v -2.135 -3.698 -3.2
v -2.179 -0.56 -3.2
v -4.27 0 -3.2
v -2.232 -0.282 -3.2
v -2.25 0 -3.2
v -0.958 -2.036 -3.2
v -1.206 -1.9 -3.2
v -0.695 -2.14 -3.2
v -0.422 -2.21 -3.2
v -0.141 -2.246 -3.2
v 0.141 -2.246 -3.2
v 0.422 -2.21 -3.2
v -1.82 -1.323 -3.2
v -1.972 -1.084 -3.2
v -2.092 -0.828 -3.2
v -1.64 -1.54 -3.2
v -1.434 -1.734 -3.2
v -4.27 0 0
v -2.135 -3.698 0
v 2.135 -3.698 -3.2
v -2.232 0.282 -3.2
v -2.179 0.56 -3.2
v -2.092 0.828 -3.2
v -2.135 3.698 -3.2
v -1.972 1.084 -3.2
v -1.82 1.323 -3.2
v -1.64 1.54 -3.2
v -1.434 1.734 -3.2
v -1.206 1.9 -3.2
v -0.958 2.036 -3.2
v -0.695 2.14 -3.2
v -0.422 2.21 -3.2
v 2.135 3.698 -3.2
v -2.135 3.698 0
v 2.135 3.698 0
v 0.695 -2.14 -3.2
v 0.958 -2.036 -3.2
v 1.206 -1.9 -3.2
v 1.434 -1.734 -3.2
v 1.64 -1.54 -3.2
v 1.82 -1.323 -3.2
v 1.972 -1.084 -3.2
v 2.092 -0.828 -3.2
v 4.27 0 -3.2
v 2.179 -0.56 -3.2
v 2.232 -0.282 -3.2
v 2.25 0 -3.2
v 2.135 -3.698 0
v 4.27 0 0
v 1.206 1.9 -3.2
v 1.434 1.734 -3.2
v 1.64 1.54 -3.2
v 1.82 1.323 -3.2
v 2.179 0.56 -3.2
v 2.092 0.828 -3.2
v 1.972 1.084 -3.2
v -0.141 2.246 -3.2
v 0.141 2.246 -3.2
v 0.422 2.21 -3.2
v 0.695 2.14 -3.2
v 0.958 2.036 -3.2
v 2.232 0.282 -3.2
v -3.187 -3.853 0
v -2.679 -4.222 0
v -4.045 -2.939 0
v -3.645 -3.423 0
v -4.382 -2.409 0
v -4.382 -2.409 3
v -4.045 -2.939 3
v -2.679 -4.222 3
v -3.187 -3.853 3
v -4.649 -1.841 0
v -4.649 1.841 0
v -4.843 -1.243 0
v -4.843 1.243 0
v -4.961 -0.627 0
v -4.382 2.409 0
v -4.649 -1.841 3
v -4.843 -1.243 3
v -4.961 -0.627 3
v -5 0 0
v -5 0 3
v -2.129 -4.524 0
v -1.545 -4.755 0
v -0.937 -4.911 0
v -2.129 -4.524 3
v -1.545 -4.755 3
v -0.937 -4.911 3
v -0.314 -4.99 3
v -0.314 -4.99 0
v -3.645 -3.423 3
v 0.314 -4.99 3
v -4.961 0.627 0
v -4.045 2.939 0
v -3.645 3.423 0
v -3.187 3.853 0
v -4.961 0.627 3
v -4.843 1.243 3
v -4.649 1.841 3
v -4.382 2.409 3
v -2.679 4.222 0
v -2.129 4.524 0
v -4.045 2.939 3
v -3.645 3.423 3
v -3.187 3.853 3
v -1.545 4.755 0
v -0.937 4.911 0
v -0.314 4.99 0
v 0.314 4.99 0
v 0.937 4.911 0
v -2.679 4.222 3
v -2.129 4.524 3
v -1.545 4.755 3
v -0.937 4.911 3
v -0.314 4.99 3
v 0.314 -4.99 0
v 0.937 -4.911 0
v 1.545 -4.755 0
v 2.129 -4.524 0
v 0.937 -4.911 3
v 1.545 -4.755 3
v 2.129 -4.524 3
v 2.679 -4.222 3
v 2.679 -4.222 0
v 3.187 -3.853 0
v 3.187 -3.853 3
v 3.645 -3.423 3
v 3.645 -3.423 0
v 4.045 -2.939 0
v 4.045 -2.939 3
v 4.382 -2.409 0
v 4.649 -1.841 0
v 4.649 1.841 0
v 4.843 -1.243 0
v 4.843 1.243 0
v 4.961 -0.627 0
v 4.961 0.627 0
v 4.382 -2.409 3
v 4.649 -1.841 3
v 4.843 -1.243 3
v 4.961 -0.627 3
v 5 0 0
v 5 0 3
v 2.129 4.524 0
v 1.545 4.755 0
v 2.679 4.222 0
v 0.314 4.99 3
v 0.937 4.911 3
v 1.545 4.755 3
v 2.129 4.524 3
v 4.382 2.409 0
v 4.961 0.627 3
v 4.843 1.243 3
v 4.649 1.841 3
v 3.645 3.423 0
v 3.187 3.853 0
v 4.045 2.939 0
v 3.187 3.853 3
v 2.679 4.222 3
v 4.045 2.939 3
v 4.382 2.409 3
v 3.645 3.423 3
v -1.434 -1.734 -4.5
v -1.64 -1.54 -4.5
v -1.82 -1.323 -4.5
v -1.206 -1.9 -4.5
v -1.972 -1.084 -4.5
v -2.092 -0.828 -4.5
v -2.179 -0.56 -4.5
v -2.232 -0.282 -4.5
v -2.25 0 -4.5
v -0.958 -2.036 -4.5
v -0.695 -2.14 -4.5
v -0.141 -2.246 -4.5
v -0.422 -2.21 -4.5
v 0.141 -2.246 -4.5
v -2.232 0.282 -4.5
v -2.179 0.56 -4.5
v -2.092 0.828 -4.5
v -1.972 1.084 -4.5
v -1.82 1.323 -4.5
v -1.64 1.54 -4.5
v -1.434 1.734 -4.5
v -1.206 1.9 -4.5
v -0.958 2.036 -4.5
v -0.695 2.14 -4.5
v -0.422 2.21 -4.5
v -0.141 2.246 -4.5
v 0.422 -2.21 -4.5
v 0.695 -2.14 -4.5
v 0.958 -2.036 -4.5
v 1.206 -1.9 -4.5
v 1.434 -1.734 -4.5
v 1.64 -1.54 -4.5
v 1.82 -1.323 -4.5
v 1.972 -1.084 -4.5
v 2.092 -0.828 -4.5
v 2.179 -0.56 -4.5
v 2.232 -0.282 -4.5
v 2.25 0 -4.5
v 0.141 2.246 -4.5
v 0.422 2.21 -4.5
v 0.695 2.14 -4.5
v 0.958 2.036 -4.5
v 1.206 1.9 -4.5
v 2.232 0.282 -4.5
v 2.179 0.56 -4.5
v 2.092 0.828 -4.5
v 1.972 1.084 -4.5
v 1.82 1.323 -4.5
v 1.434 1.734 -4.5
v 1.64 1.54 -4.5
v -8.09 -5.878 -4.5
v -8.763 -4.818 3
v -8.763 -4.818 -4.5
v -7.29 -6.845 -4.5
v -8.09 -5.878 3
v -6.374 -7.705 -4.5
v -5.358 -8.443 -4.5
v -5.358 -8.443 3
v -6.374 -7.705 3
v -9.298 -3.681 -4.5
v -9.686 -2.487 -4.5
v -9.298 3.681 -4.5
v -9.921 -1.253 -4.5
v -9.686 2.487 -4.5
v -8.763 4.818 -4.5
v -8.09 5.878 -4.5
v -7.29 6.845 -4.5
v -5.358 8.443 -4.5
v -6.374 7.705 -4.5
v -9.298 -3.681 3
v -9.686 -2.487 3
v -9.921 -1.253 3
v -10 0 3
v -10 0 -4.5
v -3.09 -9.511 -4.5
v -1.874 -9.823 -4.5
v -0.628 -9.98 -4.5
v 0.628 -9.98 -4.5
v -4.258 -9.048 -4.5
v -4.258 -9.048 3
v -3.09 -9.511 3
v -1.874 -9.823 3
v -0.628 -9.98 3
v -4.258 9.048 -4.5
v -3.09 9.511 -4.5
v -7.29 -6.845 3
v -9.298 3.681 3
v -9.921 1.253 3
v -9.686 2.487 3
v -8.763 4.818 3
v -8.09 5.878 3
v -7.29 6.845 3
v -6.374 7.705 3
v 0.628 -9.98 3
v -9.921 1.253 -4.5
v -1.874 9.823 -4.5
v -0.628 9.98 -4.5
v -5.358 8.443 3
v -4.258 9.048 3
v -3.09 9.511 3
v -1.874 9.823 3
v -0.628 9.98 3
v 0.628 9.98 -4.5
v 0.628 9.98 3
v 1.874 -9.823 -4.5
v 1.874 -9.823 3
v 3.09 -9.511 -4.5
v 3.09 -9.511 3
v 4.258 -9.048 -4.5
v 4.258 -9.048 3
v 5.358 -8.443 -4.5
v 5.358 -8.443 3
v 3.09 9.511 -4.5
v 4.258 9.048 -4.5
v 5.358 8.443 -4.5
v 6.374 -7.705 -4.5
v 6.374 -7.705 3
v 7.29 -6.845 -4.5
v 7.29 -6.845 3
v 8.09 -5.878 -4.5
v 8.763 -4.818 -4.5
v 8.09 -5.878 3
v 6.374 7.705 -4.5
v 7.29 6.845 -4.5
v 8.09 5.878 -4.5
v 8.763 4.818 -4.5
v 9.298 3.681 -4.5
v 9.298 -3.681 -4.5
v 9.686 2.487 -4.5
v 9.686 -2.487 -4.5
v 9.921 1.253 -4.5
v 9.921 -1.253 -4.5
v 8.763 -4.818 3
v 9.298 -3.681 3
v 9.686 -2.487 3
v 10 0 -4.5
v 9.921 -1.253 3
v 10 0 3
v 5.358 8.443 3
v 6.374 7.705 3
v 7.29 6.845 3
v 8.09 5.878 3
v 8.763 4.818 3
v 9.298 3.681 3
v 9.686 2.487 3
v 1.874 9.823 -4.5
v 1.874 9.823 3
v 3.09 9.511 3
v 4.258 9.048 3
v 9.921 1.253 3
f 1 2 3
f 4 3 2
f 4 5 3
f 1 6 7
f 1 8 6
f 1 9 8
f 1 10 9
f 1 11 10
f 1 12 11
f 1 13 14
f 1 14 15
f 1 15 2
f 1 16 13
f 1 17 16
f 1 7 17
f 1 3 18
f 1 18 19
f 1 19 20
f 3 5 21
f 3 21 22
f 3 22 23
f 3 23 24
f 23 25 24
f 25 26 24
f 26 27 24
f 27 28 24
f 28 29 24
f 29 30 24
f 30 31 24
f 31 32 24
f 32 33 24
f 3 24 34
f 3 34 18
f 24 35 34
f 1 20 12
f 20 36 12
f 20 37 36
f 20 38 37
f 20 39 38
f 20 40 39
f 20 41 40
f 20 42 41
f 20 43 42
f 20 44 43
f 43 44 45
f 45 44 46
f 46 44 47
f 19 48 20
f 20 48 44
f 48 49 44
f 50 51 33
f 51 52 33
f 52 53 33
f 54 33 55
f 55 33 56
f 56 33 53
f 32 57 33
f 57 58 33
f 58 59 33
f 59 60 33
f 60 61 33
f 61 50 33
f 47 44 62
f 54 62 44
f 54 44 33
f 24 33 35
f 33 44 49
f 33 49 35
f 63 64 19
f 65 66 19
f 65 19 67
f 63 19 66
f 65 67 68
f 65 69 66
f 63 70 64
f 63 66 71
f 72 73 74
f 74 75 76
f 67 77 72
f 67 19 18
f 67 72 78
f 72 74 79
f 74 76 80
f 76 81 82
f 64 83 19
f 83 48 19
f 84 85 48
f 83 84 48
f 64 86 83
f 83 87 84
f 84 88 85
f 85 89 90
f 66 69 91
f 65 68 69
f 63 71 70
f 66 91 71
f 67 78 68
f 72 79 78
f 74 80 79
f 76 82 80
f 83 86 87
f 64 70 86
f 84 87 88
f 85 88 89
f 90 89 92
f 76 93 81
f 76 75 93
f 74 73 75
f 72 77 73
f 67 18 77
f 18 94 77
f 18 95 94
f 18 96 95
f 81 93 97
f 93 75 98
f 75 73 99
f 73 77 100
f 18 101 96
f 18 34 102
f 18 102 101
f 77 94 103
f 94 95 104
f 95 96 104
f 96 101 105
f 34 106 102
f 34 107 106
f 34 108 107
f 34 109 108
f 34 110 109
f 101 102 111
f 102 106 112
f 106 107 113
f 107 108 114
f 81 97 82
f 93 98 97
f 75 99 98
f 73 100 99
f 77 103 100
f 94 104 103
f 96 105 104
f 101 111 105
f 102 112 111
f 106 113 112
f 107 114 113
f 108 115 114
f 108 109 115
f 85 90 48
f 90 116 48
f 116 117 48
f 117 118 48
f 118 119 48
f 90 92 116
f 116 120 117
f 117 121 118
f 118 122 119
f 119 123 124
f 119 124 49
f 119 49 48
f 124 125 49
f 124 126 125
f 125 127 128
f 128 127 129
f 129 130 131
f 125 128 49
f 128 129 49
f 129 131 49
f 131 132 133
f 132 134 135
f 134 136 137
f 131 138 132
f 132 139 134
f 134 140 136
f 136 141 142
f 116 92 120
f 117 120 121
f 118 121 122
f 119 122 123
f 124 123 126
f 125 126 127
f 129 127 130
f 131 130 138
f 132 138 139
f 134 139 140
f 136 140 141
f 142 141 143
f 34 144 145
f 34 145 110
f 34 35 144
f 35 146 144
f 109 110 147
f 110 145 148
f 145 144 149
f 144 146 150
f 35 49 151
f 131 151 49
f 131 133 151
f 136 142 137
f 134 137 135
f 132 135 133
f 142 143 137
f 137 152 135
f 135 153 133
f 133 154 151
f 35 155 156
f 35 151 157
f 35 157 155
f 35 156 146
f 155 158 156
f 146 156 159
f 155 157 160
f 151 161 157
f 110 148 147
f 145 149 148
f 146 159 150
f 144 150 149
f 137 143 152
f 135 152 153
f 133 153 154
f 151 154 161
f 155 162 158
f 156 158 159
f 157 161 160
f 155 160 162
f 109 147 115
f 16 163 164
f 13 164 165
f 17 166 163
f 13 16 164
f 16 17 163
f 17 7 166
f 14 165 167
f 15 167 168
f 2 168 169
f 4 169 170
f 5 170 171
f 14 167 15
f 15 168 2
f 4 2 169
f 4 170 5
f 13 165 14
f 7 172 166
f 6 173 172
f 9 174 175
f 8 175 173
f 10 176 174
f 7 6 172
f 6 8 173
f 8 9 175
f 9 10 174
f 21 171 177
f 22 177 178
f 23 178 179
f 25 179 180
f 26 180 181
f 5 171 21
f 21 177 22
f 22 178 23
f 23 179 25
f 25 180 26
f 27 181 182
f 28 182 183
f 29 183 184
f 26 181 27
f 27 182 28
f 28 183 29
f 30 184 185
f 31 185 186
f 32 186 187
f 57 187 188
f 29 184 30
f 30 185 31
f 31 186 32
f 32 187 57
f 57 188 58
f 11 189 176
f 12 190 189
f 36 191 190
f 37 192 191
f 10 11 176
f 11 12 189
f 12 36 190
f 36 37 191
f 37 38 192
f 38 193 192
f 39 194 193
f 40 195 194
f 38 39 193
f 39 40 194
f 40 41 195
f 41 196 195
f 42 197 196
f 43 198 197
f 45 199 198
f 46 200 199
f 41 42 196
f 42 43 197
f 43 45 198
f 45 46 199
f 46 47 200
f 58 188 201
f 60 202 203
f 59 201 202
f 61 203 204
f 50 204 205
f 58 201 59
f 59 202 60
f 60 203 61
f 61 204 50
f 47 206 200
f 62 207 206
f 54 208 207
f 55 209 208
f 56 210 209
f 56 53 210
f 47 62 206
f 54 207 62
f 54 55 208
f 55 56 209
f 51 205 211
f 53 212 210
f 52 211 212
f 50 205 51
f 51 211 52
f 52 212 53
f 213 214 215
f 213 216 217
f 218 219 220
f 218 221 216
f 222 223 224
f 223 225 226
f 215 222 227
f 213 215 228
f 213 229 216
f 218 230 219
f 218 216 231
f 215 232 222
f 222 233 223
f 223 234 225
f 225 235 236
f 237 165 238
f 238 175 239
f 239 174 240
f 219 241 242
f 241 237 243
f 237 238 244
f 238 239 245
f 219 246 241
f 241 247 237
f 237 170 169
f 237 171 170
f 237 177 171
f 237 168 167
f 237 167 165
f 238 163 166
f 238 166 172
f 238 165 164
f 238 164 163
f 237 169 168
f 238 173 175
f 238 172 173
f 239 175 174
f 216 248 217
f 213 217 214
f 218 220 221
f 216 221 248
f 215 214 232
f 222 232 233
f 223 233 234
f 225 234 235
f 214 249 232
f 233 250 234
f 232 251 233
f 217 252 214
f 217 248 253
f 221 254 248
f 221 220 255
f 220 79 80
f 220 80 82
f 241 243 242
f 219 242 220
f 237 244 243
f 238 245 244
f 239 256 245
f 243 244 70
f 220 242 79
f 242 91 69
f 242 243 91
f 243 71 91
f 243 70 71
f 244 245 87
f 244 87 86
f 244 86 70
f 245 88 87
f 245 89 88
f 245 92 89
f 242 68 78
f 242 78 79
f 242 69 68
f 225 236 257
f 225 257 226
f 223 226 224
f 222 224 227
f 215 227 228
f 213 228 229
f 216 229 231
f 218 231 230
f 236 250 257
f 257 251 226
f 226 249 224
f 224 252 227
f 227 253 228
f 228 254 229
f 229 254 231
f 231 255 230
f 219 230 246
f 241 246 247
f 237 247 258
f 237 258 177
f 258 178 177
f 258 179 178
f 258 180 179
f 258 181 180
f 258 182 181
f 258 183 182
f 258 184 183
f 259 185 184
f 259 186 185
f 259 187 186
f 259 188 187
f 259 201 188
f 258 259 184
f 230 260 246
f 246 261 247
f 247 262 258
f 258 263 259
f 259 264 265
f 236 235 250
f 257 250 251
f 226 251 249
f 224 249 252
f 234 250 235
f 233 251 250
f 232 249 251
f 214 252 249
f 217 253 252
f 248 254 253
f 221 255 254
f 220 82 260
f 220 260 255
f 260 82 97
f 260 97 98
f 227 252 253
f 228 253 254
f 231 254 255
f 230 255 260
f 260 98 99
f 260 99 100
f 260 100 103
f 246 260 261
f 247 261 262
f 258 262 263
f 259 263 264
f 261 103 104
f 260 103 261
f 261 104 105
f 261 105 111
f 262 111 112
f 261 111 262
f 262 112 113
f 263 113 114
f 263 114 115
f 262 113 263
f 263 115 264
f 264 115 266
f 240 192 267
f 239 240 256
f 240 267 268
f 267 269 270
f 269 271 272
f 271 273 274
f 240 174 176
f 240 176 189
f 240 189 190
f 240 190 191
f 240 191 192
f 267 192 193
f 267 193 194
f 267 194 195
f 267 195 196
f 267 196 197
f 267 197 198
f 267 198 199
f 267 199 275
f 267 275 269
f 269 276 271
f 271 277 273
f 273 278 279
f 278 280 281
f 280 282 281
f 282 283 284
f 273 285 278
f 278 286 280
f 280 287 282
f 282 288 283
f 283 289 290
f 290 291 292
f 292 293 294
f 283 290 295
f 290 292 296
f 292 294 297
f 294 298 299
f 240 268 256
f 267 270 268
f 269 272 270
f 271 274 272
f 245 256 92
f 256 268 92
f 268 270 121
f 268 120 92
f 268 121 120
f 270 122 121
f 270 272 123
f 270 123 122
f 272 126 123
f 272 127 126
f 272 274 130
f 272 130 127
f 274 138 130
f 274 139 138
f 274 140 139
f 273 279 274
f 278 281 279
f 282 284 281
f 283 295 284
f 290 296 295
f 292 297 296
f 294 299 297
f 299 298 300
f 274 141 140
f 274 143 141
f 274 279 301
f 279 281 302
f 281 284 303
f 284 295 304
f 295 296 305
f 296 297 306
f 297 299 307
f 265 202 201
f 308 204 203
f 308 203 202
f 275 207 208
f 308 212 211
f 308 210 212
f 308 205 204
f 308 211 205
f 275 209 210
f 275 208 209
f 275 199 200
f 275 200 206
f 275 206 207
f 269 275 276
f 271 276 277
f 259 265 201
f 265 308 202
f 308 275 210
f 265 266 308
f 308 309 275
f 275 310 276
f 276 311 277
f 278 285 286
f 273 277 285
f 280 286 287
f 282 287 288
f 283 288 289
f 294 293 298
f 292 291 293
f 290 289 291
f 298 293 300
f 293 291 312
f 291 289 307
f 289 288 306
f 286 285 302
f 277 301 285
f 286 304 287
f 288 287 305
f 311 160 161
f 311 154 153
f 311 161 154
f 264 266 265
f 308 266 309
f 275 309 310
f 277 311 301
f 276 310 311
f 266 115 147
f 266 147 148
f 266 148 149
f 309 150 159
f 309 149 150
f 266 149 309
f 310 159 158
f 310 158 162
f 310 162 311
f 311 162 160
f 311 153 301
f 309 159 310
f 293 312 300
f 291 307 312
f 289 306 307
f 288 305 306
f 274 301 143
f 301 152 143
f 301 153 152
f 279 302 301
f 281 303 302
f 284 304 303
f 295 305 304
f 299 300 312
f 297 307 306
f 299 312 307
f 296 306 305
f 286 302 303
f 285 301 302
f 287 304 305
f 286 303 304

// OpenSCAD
$fn = 50;

difference() {
	union() {
		translate(v = [0, 0, -4.5]) {
			cylinder(h = 7.5, r = 10.0);
		}
	}
	union() {
		translate(v = [0, 0, 0]) {
			rotate(a = [0, 0, 0]) {
				difference() {
					union() {
						translate(v = [0, 0, -3.2]) {
							linear_extrude(height = 3.2) {
								polygon(points = [[4.2698, 0.0], [2.1349000000000005, 3.697755269078796], [-2.134899999999999, 3.6977552690787965], [-4.2698, 5.228996902999369e-16], [-2.134900000000002, -3.6977552690787956], [2.1348999999999974, -3.697755269078798]]);
							}
						}
					}
					union();
				}
			}
		}
		#cylinder(h = 3, r = 5.0);
		#translate(v = [0, 0, -100.0]) {
			cylinder(h = 200, r = 2.25);
		}
	}
}
